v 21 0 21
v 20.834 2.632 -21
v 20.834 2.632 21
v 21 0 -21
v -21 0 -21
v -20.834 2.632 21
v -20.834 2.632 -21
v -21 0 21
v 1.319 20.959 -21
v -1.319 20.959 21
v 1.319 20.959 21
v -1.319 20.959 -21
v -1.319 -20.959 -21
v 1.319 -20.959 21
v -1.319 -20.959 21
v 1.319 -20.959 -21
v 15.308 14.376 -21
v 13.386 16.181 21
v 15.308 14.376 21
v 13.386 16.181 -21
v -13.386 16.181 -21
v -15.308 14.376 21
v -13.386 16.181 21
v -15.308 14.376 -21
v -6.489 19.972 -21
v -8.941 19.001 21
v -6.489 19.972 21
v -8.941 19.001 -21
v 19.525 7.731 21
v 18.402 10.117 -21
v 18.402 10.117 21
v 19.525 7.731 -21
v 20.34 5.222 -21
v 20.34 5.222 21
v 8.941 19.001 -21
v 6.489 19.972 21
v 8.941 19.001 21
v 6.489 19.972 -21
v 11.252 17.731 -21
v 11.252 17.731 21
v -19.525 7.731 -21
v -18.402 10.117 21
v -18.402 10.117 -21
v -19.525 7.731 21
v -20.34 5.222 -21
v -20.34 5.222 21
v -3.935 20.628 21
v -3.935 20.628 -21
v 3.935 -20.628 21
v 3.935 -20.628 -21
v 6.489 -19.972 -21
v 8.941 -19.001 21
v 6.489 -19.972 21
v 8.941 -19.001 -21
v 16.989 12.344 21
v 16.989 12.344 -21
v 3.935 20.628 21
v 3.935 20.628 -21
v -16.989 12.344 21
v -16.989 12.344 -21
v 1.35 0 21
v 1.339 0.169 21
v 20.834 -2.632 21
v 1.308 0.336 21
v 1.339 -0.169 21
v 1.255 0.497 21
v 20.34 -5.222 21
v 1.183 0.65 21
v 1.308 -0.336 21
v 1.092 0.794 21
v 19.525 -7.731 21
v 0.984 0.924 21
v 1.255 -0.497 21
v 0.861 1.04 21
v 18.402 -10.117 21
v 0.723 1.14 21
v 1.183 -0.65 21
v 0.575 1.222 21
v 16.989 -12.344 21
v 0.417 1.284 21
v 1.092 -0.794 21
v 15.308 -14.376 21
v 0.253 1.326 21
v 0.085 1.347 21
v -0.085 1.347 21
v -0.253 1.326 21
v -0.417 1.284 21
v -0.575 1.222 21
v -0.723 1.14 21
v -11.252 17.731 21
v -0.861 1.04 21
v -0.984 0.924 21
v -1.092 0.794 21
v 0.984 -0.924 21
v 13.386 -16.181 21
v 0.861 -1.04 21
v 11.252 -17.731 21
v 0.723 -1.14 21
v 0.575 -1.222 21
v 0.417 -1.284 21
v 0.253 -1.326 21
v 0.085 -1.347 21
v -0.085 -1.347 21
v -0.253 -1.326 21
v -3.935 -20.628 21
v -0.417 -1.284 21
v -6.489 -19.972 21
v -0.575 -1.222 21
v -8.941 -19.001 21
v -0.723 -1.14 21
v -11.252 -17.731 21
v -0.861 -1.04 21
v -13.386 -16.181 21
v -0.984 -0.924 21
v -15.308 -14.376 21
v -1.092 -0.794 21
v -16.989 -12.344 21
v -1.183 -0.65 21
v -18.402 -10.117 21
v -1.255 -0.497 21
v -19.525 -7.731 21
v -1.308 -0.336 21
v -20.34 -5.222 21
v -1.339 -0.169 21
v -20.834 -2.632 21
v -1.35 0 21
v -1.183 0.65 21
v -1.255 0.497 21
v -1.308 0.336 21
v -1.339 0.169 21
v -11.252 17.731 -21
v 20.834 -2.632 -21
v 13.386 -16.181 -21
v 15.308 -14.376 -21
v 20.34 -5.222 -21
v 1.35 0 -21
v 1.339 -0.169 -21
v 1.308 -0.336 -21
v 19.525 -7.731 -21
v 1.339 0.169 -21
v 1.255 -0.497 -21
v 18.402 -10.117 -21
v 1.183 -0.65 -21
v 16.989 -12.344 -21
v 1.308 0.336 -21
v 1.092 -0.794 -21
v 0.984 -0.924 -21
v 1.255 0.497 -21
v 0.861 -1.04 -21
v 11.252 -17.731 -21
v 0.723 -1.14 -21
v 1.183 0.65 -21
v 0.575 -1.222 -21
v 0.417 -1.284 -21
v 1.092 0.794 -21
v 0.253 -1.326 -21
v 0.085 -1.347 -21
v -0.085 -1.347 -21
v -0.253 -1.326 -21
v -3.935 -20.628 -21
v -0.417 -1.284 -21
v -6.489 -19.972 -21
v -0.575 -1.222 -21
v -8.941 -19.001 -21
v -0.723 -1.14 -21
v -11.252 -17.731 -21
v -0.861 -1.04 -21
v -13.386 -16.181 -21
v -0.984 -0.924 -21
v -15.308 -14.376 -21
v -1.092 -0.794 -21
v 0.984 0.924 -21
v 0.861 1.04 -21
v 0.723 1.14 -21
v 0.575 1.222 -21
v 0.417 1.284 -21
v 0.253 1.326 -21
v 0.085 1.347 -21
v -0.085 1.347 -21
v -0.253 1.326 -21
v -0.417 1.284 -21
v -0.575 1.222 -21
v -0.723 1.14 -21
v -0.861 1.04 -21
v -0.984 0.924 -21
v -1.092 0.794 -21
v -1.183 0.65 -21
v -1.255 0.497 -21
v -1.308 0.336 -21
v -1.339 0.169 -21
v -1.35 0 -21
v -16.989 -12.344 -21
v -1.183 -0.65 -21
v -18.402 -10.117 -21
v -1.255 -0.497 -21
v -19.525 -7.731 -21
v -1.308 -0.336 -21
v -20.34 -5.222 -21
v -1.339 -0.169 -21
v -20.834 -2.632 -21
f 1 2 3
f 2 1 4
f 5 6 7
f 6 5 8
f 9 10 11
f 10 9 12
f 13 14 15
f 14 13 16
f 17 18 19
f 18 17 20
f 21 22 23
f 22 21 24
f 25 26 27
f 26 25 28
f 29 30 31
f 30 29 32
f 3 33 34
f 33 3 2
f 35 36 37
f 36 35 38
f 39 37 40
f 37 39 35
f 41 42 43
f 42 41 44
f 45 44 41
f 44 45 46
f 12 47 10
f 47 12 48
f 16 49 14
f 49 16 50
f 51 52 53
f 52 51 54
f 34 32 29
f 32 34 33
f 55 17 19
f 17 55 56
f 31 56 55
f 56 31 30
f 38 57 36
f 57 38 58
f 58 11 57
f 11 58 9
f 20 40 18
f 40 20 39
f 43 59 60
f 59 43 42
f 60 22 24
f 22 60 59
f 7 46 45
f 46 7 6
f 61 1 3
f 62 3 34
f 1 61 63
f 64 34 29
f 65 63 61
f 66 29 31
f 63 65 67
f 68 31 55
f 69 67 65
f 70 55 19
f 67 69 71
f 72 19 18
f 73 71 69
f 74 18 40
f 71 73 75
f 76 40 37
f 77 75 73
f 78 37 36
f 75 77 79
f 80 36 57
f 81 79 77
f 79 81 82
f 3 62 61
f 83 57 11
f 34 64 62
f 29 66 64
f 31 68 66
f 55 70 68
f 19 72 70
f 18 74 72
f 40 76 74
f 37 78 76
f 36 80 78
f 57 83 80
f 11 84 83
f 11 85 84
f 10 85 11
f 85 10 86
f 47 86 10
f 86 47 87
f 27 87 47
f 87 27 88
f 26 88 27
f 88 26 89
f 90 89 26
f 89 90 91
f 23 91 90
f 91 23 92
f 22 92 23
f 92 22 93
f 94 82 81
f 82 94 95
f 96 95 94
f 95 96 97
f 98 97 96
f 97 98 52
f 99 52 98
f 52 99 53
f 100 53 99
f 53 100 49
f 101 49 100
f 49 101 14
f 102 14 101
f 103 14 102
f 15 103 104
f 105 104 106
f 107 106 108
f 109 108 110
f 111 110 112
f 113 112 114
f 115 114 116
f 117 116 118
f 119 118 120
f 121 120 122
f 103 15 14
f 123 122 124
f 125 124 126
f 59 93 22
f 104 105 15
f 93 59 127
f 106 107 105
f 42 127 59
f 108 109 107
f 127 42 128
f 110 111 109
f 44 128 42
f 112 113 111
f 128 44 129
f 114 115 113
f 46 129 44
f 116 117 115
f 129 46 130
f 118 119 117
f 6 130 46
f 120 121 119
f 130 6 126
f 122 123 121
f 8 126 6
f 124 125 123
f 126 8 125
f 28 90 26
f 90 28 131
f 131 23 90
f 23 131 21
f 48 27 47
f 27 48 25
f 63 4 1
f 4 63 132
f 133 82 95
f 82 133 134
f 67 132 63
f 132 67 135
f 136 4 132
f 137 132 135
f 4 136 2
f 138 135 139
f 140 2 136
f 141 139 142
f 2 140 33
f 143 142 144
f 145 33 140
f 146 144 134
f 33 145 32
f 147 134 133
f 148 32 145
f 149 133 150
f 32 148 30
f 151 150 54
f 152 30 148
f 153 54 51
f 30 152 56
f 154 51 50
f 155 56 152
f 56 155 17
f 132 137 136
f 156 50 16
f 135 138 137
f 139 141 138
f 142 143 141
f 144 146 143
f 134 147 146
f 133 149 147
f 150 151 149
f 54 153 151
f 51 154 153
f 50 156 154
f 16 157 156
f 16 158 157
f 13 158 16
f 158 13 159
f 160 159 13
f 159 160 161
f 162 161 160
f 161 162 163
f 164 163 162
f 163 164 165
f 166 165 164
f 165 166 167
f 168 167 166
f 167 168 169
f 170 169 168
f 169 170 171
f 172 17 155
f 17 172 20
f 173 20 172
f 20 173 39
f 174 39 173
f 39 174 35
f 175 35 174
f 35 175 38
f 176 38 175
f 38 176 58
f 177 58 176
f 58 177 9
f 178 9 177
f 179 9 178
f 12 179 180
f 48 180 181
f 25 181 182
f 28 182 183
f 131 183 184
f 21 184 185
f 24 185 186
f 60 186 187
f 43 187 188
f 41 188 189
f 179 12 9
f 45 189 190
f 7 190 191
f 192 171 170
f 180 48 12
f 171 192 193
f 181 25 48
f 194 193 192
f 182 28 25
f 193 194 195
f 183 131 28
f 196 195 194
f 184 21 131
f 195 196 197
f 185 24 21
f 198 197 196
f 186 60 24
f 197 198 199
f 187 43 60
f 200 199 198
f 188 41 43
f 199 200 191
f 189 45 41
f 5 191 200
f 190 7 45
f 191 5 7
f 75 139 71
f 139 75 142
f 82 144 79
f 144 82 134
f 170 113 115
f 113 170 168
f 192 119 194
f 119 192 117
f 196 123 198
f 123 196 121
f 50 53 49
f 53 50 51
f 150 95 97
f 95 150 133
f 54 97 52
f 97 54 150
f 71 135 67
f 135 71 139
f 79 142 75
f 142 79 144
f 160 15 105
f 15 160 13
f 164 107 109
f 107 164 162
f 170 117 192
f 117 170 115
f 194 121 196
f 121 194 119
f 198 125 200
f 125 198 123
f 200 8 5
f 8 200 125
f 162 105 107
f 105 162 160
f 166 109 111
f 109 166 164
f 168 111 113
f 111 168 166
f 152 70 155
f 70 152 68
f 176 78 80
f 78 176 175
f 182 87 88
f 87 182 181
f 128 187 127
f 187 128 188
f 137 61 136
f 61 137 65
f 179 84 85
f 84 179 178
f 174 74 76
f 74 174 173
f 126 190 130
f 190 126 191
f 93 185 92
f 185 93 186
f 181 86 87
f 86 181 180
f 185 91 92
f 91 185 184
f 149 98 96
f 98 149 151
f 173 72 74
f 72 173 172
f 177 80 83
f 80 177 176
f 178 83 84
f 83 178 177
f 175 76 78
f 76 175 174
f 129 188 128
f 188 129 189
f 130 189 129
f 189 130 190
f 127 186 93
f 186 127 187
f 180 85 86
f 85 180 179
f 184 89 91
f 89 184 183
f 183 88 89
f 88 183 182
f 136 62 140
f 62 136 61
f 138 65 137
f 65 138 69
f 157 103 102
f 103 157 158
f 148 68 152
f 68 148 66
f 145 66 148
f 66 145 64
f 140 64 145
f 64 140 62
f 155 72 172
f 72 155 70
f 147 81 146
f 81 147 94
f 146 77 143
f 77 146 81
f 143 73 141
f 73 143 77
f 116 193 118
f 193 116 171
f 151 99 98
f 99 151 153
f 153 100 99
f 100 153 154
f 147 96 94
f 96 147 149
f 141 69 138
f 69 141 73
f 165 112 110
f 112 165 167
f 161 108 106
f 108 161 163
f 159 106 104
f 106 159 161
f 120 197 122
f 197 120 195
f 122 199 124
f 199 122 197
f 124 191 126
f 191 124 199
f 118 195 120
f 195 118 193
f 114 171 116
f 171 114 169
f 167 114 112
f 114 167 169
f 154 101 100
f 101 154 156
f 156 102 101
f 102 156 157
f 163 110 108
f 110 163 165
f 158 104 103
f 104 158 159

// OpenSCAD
$fn = 50;


difference() {
	union() {
		translate(v = [0, 0, -21.0000000000]) {
			cylinder(h = 42, r = 21.0000000000);
		}
	}
	union() {
		translate(v = [0, 0, -100.0000000000]) {
			cylinder(h = 200, r = 1.3500000000);
		}
	}
}
